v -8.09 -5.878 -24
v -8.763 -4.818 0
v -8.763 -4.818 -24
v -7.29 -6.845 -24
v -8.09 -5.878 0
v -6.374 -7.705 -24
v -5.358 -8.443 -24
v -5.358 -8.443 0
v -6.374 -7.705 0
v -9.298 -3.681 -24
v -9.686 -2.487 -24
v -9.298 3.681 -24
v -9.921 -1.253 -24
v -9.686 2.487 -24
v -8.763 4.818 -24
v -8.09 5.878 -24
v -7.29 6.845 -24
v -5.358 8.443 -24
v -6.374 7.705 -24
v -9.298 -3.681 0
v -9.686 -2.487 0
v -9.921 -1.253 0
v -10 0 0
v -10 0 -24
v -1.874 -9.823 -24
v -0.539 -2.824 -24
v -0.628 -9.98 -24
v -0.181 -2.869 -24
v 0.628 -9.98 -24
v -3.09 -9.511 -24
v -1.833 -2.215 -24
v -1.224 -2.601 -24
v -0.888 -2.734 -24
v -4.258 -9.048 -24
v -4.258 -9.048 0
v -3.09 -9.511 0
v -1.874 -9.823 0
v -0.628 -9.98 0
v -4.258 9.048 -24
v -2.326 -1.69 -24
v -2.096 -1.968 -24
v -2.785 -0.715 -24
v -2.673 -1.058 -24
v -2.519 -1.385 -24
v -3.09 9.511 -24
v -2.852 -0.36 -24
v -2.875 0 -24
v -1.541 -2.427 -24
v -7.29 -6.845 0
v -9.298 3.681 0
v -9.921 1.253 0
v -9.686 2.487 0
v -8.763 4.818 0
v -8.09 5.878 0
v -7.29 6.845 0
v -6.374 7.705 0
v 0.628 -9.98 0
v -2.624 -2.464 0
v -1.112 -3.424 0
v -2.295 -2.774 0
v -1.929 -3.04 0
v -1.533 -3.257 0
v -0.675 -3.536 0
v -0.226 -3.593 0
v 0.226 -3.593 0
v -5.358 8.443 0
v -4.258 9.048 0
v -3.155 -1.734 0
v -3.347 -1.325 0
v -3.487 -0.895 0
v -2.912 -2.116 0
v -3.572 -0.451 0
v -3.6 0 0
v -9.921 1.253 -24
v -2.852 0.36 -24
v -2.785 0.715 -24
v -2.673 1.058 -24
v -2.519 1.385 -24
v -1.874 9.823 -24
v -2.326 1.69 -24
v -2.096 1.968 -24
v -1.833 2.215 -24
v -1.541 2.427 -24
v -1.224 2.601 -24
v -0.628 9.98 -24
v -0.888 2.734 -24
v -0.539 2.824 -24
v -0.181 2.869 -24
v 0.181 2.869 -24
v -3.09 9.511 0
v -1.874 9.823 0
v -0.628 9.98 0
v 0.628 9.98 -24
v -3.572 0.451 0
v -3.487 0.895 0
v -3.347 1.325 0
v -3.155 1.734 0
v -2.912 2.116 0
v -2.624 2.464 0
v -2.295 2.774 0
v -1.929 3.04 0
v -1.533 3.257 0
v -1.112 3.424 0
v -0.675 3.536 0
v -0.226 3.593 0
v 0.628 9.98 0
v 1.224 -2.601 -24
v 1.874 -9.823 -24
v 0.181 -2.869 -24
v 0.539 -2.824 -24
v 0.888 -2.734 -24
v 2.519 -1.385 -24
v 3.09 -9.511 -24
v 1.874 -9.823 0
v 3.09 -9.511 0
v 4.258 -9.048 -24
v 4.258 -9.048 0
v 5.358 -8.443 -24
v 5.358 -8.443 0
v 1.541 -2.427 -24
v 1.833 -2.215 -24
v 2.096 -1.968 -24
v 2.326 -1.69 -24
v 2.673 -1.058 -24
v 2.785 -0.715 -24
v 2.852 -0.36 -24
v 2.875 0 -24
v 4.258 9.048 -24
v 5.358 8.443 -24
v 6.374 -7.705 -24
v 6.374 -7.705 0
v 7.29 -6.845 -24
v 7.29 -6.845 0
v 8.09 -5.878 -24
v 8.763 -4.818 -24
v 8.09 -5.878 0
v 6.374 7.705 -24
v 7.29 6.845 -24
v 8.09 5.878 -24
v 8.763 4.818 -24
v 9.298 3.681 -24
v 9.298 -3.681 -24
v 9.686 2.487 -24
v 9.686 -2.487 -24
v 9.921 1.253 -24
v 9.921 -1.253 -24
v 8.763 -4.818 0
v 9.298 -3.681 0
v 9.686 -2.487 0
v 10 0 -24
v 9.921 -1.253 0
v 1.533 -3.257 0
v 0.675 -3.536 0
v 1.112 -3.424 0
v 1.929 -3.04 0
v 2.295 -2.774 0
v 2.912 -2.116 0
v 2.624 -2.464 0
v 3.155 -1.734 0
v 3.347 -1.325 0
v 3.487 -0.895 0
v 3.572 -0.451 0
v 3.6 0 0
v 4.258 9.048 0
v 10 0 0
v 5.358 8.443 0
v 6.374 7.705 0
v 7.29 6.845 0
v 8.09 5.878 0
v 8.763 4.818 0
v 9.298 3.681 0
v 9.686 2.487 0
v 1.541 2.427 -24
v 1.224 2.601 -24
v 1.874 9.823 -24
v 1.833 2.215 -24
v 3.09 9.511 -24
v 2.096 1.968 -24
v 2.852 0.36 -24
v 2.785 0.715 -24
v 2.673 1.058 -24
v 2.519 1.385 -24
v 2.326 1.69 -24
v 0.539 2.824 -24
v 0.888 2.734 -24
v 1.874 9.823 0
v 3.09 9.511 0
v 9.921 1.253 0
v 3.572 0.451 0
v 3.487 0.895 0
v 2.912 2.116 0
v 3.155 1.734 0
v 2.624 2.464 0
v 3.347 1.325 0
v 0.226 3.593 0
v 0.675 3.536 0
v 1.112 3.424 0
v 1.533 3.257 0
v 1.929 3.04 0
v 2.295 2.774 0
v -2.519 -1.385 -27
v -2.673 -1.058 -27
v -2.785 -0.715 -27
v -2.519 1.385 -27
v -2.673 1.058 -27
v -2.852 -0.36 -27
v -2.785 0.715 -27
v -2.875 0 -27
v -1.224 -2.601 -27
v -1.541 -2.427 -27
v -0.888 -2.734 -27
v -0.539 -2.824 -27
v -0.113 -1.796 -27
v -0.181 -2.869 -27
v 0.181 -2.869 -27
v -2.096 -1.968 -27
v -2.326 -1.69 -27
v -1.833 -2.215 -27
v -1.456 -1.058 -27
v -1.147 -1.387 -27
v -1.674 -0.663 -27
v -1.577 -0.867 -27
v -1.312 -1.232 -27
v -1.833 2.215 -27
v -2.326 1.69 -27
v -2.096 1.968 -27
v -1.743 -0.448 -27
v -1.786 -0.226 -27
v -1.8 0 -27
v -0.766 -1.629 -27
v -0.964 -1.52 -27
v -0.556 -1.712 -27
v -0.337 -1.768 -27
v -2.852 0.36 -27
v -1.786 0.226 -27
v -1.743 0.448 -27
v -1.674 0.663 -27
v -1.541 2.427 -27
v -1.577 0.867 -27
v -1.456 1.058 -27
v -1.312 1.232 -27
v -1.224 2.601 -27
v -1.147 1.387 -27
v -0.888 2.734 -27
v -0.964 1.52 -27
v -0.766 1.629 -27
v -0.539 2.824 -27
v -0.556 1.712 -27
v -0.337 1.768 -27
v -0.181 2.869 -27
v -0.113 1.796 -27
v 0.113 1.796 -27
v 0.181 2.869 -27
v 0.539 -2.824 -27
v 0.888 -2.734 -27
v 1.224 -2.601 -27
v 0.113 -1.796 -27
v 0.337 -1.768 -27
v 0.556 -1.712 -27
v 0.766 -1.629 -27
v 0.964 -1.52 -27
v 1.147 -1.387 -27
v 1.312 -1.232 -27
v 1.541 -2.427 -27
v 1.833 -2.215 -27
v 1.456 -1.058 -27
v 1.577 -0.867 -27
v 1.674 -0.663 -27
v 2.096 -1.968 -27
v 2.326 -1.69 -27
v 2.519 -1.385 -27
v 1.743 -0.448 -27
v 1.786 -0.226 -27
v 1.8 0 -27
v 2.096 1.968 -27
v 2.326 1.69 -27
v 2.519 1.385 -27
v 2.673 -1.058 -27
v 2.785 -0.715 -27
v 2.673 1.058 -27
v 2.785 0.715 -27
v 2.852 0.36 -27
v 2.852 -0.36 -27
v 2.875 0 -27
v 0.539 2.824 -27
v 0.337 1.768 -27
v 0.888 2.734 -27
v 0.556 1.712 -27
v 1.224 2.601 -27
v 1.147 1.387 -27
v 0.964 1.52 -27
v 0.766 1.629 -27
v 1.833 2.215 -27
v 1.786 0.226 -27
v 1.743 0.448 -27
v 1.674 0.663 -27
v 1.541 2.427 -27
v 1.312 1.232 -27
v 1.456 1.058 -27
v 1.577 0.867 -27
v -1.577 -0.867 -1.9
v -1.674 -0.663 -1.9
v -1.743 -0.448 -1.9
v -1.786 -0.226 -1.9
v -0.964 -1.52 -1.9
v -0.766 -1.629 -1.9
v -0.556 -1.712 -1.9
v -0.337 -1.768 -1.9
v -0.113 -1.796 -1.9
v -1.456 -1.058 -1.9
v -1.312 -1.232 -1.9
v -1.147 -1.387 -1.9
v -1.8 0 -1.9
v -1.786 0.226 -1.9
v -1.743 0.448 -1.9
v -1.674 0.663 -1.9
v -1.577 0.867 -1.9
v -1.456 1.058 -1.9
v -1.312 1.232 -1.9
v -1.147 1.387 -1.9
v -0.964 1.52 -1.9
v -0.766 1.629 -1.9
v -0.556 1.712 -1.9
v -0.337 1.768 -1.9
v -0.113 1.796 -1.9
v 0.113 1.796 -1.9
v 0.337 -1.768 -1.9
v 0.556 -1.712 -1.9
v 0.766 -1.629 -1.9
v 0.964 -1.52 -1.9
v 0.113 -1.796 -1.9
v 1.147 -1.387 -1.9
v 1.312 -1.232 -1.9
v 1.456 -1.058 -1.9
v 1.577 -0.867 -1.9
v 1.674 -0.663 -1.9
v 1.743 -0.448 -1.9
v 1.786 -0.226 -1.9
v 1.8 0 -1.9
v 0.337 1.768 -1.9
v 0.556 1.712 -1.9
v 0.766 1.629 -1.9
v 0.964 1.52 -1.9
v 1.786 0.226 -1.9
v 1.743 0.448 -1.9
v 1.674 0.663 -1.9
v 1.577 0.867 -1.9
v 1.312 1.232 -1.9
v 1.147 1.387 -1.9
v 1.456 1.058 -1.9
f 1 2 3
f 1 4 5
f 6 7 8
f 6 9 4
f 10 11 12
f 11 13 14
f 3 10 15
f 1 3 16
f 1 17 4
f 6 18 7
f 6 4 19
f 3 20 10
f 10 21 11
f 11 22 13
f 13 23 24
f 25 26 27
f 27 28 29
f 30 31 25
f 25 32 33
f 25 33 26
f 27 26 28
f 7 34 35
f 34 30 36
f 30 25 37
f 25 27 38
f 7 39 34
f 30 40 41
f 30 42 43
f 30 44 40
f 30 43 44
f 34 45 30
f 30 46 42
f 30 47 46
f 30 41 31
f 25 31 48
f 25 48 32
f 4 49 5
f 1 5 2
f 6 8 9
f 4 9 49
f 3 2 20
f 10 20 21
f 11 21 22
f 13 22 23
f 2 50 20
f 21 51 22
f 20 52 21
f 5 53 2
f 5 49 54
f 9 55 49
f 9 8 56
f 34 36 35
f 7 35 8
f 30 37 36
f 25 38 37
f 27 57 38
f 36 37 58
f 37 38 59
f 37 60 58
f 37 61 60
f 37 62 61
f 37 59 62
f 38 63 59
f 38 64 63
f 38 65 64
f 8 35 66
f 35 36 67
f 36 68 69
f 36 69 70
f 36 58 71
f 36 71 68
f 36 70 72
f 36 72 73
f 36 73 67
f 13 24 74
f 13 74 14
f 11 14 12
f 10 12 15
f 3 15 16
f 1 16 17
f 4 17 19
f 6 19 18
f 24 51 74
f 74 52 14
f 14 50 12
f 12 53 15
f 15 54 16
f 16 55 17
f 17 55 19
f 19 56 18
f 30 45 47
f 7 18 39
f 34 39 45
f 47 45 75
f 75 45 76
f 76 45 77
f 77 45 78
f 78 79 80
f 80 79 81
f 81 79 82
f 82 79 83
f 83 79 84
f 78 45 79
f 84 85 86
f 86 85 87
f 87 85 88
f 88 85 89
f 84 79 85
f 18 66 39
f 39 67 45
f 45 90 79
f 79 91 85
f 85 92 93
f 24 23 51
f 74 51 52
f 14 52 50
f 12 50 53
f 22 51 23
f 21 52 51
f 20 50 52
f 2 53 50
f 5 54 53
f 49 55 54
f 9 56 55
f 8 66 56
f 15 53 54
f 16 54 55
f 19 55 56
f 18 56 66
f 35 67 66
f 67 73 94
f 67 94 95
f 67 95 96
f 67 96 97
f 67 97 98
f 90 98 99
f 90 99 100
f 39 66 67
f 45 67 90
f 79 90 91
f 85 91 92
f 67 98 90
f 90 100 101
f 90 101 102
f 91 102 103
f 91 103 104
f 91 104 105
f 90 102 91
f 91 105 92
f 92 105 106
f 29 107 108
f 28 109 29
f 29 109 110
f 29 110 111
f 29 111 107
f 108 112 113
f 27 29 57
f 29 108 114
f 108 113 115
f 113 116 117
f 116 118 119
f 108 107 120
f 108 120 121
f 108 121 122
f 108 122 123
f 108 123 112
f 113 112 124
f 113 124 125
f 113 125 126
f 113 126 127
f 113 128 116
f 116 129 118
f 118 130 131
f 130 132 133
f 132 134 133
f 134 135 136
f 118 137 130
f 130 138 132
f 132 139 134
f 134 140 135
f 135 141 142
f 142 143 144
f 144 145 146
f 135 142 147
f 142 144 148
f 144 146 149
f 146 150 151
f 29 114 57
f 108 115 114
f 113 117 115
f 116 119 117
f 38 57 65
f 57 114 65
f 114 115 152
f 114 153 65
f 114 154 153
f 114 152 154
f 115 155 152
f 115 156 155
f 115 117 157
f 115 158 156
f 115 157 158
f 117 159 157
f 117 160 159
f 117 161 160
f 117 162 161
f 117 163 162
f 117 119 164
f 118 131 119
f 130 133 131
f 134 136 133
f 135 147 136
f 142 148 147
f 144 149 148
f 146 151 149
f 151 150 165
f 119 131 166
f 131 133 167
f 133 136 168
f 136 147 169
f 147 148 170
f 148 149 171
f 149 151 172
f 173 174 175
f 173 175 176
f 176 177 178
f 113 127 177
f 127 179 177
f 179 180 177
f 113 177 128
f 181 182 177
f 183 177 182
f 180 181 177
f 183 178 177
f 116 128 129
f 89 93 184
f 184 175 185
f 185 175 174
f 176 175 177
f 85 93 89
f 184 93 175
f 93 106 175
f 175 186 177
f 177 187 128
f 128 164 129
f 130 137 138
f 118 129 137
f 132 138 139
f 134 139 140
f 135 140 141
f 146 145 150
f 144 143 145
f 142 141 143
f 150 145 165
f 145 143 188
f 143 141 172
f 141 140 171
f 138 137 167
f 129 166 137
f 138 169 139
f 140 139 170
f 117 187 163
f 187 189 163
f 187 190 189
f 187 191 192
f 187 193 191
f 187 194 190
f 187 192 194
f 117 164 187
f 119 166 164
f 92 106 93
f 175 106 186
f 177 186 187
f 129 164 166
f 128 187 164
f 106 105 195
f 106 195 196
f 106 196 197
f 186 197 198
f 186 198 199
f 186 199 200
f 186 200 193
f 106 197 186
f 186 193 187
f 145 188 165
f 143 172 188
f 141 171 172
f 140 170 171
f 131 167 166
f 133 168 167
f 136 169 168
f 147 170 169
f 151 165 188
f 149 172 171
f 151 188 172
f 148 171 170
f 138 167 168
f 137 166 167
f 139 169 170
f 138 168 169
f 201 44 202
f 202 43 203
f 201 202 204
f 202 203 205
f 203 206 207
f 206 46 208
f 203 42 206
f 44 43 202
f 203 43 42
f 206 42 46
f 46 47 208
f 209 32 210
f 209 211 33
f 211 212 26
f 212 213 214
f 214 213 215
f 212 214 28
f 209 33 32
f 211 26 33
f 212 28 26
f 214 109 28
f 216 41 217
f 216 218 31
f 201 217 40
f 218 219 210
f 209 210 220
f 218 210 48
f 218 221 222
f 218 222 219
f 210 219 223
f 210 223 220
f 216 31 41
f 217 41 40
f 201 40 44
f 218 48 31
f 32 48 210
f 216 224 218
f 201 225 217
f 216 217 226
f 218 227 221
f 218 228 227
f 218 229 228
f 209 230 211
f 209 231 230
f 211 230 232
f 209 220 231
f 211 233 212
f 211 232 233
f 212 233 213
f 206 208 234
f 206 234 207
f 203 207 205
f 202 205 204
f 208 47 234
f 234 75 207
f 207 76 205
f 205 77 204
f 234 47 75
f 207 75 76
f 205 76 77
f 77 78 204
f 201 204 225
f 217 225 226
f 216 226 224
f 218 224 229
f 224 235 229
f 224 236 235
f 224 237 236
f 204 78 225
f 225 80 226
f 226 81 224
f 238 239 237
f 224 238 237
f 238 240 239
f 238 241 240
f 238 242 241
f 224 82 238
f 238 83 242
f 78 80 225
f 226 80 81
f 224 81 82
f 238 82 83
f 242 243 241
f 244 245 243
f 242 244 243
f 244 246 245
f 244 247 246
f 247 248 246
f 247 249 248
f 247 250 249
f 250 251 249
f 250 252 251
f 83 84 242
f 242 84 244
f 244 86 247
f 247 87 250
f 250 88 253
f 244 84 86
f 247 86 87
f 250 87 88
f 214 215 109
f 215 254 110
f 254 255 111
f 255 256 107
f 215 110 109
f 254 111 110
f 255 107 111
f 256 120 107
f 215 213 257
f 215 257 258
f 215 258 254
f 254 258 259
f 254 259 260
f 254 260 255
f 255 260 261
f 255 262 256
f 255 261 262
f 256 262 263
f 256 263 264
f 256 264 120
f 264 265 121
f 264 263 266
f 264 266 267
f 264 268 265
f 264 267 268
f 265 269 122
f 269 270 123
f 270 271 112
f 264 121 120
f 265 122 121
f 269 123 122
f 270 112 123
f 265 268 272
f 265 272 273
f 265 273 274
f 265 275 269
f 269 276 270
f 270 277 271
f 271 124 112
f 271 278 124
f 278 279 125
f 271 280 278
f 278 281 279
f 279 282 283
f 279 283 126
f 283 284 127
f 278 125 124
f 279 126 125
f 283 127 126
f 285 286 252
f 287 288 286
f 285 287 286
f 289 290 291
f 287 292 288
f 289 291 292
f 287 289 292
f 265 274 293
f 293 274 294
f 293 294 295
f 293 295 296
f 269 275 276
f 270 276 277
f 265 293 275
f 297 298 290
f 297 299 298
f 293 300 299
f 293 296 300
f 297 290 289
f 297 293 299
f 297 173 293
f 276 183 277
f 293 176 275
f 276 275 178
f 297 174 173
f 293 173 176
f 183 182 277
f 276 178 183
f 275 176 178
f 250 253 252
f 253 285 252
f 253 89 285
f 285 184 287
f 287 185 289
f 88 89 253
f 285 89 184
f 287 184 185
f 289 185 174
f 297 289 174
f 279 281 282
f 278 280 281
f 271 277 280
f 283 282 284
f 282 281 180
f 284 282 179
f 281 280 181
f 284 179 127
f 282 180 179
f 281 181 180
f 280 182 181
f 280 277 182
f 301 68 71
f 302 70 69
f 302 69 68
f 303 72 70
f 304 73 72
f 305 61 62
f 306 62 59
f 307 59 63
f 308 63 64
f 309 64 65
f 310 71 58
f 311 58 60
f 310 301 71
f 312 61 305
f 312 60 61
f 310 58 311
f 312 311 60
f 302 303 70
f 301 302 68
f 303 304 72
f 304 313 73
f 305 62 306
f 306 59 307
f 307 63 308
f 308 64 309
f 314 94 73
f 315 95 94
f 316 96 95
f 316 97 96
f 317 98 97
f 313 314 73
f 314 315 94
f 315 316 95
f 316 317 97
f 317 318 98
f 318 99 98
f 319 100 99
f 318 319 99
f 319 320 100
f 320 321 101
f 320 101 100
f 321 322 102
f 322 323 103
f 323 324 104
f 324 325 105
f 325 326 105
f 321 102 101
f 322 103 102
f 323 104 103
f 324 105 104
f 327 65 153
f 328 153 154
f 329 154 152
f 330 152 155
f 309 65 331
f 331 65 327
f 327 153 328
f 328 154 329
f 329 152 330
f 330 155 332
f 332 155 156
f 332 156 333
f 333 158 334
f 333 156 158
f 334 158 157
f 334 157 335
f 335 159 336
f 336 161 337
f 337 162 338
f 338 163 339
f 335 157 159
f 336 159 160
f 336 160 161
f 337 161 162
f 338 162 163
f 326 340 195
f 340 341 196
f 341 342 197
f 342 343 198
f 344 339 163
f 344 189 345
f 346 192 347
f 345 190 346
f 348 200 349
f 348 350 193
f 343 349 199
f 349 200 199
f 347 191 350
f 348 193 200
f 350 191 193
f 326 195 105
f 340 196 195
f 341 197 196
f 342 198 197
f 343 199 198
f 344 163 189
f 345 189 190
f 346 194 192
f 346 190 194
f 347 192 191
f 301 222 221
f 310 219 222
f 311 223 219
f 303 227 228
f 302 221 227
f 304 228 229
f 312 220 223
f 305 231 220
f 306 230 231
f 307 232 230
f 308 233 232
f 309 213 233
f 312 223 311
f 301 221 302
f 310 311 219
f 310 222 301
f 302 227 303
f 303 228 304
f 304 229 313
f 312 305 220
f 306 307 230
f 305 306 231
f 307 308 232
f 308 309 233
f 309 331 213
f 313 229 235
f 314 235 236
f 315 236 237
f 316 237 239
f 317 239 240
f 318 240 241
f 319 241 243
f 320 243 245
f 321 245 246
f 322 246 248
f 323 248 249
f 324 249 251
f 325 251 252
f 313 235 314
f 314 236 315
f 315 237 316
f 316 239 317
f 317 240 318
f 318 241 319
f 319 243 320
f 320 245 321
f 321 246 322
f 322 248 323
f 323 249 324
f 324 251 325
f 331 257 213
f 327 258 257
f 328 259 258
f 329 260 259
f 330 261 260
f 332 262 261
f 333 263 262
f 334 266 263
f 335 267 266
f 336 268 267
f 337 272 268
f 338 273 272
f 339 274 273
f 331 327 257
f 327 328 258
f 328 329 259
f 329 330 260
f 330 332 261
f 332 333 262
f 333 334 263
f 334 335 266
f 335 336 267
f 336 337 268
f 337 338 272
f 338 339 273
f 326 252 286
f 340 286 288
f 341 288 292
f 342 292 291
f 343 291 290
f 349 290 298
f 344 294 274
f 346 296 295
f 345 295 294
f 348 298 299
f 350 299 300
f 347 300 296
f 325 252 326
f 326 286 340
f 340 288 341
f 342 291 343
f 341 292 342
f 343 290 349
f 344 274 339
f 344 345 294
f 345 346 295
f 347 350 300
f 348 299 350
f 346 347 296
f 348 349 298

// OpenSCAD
$fn = 50;

difference() {
	union() {
		translate(v = [0, 0, -24.0]) {
			cylinder(h = 24, r = 10.0);
		}
		#translate(v = [0, 0, -27.0]) {
			cylinder(h = 27, r = 2.875);
		}
	}
	union() {
		translate(v = [0, 0, 0]) {
			rotate(a = [0, 0, 0]) {
				difference() {
					union() {
						translate(v = [0, 0, -27.0]) {
							cylinder(h = 27, r = 1.5);
						}
						translate(v = [0, 0, -1.9]) {
							cylinder(h = 1.9, r1 = 1.8, r2 = 3.6);
						}
						translate(v = [0, 0, -27.0]) {
							cylinder(h = 27, r = 1.8);
						}
						translate(v = [0, 0, -27.0]) {
							cylinder(h = 27, r = 1.5);
						}
					}
					union();
				}
			}
		}
	}
}
